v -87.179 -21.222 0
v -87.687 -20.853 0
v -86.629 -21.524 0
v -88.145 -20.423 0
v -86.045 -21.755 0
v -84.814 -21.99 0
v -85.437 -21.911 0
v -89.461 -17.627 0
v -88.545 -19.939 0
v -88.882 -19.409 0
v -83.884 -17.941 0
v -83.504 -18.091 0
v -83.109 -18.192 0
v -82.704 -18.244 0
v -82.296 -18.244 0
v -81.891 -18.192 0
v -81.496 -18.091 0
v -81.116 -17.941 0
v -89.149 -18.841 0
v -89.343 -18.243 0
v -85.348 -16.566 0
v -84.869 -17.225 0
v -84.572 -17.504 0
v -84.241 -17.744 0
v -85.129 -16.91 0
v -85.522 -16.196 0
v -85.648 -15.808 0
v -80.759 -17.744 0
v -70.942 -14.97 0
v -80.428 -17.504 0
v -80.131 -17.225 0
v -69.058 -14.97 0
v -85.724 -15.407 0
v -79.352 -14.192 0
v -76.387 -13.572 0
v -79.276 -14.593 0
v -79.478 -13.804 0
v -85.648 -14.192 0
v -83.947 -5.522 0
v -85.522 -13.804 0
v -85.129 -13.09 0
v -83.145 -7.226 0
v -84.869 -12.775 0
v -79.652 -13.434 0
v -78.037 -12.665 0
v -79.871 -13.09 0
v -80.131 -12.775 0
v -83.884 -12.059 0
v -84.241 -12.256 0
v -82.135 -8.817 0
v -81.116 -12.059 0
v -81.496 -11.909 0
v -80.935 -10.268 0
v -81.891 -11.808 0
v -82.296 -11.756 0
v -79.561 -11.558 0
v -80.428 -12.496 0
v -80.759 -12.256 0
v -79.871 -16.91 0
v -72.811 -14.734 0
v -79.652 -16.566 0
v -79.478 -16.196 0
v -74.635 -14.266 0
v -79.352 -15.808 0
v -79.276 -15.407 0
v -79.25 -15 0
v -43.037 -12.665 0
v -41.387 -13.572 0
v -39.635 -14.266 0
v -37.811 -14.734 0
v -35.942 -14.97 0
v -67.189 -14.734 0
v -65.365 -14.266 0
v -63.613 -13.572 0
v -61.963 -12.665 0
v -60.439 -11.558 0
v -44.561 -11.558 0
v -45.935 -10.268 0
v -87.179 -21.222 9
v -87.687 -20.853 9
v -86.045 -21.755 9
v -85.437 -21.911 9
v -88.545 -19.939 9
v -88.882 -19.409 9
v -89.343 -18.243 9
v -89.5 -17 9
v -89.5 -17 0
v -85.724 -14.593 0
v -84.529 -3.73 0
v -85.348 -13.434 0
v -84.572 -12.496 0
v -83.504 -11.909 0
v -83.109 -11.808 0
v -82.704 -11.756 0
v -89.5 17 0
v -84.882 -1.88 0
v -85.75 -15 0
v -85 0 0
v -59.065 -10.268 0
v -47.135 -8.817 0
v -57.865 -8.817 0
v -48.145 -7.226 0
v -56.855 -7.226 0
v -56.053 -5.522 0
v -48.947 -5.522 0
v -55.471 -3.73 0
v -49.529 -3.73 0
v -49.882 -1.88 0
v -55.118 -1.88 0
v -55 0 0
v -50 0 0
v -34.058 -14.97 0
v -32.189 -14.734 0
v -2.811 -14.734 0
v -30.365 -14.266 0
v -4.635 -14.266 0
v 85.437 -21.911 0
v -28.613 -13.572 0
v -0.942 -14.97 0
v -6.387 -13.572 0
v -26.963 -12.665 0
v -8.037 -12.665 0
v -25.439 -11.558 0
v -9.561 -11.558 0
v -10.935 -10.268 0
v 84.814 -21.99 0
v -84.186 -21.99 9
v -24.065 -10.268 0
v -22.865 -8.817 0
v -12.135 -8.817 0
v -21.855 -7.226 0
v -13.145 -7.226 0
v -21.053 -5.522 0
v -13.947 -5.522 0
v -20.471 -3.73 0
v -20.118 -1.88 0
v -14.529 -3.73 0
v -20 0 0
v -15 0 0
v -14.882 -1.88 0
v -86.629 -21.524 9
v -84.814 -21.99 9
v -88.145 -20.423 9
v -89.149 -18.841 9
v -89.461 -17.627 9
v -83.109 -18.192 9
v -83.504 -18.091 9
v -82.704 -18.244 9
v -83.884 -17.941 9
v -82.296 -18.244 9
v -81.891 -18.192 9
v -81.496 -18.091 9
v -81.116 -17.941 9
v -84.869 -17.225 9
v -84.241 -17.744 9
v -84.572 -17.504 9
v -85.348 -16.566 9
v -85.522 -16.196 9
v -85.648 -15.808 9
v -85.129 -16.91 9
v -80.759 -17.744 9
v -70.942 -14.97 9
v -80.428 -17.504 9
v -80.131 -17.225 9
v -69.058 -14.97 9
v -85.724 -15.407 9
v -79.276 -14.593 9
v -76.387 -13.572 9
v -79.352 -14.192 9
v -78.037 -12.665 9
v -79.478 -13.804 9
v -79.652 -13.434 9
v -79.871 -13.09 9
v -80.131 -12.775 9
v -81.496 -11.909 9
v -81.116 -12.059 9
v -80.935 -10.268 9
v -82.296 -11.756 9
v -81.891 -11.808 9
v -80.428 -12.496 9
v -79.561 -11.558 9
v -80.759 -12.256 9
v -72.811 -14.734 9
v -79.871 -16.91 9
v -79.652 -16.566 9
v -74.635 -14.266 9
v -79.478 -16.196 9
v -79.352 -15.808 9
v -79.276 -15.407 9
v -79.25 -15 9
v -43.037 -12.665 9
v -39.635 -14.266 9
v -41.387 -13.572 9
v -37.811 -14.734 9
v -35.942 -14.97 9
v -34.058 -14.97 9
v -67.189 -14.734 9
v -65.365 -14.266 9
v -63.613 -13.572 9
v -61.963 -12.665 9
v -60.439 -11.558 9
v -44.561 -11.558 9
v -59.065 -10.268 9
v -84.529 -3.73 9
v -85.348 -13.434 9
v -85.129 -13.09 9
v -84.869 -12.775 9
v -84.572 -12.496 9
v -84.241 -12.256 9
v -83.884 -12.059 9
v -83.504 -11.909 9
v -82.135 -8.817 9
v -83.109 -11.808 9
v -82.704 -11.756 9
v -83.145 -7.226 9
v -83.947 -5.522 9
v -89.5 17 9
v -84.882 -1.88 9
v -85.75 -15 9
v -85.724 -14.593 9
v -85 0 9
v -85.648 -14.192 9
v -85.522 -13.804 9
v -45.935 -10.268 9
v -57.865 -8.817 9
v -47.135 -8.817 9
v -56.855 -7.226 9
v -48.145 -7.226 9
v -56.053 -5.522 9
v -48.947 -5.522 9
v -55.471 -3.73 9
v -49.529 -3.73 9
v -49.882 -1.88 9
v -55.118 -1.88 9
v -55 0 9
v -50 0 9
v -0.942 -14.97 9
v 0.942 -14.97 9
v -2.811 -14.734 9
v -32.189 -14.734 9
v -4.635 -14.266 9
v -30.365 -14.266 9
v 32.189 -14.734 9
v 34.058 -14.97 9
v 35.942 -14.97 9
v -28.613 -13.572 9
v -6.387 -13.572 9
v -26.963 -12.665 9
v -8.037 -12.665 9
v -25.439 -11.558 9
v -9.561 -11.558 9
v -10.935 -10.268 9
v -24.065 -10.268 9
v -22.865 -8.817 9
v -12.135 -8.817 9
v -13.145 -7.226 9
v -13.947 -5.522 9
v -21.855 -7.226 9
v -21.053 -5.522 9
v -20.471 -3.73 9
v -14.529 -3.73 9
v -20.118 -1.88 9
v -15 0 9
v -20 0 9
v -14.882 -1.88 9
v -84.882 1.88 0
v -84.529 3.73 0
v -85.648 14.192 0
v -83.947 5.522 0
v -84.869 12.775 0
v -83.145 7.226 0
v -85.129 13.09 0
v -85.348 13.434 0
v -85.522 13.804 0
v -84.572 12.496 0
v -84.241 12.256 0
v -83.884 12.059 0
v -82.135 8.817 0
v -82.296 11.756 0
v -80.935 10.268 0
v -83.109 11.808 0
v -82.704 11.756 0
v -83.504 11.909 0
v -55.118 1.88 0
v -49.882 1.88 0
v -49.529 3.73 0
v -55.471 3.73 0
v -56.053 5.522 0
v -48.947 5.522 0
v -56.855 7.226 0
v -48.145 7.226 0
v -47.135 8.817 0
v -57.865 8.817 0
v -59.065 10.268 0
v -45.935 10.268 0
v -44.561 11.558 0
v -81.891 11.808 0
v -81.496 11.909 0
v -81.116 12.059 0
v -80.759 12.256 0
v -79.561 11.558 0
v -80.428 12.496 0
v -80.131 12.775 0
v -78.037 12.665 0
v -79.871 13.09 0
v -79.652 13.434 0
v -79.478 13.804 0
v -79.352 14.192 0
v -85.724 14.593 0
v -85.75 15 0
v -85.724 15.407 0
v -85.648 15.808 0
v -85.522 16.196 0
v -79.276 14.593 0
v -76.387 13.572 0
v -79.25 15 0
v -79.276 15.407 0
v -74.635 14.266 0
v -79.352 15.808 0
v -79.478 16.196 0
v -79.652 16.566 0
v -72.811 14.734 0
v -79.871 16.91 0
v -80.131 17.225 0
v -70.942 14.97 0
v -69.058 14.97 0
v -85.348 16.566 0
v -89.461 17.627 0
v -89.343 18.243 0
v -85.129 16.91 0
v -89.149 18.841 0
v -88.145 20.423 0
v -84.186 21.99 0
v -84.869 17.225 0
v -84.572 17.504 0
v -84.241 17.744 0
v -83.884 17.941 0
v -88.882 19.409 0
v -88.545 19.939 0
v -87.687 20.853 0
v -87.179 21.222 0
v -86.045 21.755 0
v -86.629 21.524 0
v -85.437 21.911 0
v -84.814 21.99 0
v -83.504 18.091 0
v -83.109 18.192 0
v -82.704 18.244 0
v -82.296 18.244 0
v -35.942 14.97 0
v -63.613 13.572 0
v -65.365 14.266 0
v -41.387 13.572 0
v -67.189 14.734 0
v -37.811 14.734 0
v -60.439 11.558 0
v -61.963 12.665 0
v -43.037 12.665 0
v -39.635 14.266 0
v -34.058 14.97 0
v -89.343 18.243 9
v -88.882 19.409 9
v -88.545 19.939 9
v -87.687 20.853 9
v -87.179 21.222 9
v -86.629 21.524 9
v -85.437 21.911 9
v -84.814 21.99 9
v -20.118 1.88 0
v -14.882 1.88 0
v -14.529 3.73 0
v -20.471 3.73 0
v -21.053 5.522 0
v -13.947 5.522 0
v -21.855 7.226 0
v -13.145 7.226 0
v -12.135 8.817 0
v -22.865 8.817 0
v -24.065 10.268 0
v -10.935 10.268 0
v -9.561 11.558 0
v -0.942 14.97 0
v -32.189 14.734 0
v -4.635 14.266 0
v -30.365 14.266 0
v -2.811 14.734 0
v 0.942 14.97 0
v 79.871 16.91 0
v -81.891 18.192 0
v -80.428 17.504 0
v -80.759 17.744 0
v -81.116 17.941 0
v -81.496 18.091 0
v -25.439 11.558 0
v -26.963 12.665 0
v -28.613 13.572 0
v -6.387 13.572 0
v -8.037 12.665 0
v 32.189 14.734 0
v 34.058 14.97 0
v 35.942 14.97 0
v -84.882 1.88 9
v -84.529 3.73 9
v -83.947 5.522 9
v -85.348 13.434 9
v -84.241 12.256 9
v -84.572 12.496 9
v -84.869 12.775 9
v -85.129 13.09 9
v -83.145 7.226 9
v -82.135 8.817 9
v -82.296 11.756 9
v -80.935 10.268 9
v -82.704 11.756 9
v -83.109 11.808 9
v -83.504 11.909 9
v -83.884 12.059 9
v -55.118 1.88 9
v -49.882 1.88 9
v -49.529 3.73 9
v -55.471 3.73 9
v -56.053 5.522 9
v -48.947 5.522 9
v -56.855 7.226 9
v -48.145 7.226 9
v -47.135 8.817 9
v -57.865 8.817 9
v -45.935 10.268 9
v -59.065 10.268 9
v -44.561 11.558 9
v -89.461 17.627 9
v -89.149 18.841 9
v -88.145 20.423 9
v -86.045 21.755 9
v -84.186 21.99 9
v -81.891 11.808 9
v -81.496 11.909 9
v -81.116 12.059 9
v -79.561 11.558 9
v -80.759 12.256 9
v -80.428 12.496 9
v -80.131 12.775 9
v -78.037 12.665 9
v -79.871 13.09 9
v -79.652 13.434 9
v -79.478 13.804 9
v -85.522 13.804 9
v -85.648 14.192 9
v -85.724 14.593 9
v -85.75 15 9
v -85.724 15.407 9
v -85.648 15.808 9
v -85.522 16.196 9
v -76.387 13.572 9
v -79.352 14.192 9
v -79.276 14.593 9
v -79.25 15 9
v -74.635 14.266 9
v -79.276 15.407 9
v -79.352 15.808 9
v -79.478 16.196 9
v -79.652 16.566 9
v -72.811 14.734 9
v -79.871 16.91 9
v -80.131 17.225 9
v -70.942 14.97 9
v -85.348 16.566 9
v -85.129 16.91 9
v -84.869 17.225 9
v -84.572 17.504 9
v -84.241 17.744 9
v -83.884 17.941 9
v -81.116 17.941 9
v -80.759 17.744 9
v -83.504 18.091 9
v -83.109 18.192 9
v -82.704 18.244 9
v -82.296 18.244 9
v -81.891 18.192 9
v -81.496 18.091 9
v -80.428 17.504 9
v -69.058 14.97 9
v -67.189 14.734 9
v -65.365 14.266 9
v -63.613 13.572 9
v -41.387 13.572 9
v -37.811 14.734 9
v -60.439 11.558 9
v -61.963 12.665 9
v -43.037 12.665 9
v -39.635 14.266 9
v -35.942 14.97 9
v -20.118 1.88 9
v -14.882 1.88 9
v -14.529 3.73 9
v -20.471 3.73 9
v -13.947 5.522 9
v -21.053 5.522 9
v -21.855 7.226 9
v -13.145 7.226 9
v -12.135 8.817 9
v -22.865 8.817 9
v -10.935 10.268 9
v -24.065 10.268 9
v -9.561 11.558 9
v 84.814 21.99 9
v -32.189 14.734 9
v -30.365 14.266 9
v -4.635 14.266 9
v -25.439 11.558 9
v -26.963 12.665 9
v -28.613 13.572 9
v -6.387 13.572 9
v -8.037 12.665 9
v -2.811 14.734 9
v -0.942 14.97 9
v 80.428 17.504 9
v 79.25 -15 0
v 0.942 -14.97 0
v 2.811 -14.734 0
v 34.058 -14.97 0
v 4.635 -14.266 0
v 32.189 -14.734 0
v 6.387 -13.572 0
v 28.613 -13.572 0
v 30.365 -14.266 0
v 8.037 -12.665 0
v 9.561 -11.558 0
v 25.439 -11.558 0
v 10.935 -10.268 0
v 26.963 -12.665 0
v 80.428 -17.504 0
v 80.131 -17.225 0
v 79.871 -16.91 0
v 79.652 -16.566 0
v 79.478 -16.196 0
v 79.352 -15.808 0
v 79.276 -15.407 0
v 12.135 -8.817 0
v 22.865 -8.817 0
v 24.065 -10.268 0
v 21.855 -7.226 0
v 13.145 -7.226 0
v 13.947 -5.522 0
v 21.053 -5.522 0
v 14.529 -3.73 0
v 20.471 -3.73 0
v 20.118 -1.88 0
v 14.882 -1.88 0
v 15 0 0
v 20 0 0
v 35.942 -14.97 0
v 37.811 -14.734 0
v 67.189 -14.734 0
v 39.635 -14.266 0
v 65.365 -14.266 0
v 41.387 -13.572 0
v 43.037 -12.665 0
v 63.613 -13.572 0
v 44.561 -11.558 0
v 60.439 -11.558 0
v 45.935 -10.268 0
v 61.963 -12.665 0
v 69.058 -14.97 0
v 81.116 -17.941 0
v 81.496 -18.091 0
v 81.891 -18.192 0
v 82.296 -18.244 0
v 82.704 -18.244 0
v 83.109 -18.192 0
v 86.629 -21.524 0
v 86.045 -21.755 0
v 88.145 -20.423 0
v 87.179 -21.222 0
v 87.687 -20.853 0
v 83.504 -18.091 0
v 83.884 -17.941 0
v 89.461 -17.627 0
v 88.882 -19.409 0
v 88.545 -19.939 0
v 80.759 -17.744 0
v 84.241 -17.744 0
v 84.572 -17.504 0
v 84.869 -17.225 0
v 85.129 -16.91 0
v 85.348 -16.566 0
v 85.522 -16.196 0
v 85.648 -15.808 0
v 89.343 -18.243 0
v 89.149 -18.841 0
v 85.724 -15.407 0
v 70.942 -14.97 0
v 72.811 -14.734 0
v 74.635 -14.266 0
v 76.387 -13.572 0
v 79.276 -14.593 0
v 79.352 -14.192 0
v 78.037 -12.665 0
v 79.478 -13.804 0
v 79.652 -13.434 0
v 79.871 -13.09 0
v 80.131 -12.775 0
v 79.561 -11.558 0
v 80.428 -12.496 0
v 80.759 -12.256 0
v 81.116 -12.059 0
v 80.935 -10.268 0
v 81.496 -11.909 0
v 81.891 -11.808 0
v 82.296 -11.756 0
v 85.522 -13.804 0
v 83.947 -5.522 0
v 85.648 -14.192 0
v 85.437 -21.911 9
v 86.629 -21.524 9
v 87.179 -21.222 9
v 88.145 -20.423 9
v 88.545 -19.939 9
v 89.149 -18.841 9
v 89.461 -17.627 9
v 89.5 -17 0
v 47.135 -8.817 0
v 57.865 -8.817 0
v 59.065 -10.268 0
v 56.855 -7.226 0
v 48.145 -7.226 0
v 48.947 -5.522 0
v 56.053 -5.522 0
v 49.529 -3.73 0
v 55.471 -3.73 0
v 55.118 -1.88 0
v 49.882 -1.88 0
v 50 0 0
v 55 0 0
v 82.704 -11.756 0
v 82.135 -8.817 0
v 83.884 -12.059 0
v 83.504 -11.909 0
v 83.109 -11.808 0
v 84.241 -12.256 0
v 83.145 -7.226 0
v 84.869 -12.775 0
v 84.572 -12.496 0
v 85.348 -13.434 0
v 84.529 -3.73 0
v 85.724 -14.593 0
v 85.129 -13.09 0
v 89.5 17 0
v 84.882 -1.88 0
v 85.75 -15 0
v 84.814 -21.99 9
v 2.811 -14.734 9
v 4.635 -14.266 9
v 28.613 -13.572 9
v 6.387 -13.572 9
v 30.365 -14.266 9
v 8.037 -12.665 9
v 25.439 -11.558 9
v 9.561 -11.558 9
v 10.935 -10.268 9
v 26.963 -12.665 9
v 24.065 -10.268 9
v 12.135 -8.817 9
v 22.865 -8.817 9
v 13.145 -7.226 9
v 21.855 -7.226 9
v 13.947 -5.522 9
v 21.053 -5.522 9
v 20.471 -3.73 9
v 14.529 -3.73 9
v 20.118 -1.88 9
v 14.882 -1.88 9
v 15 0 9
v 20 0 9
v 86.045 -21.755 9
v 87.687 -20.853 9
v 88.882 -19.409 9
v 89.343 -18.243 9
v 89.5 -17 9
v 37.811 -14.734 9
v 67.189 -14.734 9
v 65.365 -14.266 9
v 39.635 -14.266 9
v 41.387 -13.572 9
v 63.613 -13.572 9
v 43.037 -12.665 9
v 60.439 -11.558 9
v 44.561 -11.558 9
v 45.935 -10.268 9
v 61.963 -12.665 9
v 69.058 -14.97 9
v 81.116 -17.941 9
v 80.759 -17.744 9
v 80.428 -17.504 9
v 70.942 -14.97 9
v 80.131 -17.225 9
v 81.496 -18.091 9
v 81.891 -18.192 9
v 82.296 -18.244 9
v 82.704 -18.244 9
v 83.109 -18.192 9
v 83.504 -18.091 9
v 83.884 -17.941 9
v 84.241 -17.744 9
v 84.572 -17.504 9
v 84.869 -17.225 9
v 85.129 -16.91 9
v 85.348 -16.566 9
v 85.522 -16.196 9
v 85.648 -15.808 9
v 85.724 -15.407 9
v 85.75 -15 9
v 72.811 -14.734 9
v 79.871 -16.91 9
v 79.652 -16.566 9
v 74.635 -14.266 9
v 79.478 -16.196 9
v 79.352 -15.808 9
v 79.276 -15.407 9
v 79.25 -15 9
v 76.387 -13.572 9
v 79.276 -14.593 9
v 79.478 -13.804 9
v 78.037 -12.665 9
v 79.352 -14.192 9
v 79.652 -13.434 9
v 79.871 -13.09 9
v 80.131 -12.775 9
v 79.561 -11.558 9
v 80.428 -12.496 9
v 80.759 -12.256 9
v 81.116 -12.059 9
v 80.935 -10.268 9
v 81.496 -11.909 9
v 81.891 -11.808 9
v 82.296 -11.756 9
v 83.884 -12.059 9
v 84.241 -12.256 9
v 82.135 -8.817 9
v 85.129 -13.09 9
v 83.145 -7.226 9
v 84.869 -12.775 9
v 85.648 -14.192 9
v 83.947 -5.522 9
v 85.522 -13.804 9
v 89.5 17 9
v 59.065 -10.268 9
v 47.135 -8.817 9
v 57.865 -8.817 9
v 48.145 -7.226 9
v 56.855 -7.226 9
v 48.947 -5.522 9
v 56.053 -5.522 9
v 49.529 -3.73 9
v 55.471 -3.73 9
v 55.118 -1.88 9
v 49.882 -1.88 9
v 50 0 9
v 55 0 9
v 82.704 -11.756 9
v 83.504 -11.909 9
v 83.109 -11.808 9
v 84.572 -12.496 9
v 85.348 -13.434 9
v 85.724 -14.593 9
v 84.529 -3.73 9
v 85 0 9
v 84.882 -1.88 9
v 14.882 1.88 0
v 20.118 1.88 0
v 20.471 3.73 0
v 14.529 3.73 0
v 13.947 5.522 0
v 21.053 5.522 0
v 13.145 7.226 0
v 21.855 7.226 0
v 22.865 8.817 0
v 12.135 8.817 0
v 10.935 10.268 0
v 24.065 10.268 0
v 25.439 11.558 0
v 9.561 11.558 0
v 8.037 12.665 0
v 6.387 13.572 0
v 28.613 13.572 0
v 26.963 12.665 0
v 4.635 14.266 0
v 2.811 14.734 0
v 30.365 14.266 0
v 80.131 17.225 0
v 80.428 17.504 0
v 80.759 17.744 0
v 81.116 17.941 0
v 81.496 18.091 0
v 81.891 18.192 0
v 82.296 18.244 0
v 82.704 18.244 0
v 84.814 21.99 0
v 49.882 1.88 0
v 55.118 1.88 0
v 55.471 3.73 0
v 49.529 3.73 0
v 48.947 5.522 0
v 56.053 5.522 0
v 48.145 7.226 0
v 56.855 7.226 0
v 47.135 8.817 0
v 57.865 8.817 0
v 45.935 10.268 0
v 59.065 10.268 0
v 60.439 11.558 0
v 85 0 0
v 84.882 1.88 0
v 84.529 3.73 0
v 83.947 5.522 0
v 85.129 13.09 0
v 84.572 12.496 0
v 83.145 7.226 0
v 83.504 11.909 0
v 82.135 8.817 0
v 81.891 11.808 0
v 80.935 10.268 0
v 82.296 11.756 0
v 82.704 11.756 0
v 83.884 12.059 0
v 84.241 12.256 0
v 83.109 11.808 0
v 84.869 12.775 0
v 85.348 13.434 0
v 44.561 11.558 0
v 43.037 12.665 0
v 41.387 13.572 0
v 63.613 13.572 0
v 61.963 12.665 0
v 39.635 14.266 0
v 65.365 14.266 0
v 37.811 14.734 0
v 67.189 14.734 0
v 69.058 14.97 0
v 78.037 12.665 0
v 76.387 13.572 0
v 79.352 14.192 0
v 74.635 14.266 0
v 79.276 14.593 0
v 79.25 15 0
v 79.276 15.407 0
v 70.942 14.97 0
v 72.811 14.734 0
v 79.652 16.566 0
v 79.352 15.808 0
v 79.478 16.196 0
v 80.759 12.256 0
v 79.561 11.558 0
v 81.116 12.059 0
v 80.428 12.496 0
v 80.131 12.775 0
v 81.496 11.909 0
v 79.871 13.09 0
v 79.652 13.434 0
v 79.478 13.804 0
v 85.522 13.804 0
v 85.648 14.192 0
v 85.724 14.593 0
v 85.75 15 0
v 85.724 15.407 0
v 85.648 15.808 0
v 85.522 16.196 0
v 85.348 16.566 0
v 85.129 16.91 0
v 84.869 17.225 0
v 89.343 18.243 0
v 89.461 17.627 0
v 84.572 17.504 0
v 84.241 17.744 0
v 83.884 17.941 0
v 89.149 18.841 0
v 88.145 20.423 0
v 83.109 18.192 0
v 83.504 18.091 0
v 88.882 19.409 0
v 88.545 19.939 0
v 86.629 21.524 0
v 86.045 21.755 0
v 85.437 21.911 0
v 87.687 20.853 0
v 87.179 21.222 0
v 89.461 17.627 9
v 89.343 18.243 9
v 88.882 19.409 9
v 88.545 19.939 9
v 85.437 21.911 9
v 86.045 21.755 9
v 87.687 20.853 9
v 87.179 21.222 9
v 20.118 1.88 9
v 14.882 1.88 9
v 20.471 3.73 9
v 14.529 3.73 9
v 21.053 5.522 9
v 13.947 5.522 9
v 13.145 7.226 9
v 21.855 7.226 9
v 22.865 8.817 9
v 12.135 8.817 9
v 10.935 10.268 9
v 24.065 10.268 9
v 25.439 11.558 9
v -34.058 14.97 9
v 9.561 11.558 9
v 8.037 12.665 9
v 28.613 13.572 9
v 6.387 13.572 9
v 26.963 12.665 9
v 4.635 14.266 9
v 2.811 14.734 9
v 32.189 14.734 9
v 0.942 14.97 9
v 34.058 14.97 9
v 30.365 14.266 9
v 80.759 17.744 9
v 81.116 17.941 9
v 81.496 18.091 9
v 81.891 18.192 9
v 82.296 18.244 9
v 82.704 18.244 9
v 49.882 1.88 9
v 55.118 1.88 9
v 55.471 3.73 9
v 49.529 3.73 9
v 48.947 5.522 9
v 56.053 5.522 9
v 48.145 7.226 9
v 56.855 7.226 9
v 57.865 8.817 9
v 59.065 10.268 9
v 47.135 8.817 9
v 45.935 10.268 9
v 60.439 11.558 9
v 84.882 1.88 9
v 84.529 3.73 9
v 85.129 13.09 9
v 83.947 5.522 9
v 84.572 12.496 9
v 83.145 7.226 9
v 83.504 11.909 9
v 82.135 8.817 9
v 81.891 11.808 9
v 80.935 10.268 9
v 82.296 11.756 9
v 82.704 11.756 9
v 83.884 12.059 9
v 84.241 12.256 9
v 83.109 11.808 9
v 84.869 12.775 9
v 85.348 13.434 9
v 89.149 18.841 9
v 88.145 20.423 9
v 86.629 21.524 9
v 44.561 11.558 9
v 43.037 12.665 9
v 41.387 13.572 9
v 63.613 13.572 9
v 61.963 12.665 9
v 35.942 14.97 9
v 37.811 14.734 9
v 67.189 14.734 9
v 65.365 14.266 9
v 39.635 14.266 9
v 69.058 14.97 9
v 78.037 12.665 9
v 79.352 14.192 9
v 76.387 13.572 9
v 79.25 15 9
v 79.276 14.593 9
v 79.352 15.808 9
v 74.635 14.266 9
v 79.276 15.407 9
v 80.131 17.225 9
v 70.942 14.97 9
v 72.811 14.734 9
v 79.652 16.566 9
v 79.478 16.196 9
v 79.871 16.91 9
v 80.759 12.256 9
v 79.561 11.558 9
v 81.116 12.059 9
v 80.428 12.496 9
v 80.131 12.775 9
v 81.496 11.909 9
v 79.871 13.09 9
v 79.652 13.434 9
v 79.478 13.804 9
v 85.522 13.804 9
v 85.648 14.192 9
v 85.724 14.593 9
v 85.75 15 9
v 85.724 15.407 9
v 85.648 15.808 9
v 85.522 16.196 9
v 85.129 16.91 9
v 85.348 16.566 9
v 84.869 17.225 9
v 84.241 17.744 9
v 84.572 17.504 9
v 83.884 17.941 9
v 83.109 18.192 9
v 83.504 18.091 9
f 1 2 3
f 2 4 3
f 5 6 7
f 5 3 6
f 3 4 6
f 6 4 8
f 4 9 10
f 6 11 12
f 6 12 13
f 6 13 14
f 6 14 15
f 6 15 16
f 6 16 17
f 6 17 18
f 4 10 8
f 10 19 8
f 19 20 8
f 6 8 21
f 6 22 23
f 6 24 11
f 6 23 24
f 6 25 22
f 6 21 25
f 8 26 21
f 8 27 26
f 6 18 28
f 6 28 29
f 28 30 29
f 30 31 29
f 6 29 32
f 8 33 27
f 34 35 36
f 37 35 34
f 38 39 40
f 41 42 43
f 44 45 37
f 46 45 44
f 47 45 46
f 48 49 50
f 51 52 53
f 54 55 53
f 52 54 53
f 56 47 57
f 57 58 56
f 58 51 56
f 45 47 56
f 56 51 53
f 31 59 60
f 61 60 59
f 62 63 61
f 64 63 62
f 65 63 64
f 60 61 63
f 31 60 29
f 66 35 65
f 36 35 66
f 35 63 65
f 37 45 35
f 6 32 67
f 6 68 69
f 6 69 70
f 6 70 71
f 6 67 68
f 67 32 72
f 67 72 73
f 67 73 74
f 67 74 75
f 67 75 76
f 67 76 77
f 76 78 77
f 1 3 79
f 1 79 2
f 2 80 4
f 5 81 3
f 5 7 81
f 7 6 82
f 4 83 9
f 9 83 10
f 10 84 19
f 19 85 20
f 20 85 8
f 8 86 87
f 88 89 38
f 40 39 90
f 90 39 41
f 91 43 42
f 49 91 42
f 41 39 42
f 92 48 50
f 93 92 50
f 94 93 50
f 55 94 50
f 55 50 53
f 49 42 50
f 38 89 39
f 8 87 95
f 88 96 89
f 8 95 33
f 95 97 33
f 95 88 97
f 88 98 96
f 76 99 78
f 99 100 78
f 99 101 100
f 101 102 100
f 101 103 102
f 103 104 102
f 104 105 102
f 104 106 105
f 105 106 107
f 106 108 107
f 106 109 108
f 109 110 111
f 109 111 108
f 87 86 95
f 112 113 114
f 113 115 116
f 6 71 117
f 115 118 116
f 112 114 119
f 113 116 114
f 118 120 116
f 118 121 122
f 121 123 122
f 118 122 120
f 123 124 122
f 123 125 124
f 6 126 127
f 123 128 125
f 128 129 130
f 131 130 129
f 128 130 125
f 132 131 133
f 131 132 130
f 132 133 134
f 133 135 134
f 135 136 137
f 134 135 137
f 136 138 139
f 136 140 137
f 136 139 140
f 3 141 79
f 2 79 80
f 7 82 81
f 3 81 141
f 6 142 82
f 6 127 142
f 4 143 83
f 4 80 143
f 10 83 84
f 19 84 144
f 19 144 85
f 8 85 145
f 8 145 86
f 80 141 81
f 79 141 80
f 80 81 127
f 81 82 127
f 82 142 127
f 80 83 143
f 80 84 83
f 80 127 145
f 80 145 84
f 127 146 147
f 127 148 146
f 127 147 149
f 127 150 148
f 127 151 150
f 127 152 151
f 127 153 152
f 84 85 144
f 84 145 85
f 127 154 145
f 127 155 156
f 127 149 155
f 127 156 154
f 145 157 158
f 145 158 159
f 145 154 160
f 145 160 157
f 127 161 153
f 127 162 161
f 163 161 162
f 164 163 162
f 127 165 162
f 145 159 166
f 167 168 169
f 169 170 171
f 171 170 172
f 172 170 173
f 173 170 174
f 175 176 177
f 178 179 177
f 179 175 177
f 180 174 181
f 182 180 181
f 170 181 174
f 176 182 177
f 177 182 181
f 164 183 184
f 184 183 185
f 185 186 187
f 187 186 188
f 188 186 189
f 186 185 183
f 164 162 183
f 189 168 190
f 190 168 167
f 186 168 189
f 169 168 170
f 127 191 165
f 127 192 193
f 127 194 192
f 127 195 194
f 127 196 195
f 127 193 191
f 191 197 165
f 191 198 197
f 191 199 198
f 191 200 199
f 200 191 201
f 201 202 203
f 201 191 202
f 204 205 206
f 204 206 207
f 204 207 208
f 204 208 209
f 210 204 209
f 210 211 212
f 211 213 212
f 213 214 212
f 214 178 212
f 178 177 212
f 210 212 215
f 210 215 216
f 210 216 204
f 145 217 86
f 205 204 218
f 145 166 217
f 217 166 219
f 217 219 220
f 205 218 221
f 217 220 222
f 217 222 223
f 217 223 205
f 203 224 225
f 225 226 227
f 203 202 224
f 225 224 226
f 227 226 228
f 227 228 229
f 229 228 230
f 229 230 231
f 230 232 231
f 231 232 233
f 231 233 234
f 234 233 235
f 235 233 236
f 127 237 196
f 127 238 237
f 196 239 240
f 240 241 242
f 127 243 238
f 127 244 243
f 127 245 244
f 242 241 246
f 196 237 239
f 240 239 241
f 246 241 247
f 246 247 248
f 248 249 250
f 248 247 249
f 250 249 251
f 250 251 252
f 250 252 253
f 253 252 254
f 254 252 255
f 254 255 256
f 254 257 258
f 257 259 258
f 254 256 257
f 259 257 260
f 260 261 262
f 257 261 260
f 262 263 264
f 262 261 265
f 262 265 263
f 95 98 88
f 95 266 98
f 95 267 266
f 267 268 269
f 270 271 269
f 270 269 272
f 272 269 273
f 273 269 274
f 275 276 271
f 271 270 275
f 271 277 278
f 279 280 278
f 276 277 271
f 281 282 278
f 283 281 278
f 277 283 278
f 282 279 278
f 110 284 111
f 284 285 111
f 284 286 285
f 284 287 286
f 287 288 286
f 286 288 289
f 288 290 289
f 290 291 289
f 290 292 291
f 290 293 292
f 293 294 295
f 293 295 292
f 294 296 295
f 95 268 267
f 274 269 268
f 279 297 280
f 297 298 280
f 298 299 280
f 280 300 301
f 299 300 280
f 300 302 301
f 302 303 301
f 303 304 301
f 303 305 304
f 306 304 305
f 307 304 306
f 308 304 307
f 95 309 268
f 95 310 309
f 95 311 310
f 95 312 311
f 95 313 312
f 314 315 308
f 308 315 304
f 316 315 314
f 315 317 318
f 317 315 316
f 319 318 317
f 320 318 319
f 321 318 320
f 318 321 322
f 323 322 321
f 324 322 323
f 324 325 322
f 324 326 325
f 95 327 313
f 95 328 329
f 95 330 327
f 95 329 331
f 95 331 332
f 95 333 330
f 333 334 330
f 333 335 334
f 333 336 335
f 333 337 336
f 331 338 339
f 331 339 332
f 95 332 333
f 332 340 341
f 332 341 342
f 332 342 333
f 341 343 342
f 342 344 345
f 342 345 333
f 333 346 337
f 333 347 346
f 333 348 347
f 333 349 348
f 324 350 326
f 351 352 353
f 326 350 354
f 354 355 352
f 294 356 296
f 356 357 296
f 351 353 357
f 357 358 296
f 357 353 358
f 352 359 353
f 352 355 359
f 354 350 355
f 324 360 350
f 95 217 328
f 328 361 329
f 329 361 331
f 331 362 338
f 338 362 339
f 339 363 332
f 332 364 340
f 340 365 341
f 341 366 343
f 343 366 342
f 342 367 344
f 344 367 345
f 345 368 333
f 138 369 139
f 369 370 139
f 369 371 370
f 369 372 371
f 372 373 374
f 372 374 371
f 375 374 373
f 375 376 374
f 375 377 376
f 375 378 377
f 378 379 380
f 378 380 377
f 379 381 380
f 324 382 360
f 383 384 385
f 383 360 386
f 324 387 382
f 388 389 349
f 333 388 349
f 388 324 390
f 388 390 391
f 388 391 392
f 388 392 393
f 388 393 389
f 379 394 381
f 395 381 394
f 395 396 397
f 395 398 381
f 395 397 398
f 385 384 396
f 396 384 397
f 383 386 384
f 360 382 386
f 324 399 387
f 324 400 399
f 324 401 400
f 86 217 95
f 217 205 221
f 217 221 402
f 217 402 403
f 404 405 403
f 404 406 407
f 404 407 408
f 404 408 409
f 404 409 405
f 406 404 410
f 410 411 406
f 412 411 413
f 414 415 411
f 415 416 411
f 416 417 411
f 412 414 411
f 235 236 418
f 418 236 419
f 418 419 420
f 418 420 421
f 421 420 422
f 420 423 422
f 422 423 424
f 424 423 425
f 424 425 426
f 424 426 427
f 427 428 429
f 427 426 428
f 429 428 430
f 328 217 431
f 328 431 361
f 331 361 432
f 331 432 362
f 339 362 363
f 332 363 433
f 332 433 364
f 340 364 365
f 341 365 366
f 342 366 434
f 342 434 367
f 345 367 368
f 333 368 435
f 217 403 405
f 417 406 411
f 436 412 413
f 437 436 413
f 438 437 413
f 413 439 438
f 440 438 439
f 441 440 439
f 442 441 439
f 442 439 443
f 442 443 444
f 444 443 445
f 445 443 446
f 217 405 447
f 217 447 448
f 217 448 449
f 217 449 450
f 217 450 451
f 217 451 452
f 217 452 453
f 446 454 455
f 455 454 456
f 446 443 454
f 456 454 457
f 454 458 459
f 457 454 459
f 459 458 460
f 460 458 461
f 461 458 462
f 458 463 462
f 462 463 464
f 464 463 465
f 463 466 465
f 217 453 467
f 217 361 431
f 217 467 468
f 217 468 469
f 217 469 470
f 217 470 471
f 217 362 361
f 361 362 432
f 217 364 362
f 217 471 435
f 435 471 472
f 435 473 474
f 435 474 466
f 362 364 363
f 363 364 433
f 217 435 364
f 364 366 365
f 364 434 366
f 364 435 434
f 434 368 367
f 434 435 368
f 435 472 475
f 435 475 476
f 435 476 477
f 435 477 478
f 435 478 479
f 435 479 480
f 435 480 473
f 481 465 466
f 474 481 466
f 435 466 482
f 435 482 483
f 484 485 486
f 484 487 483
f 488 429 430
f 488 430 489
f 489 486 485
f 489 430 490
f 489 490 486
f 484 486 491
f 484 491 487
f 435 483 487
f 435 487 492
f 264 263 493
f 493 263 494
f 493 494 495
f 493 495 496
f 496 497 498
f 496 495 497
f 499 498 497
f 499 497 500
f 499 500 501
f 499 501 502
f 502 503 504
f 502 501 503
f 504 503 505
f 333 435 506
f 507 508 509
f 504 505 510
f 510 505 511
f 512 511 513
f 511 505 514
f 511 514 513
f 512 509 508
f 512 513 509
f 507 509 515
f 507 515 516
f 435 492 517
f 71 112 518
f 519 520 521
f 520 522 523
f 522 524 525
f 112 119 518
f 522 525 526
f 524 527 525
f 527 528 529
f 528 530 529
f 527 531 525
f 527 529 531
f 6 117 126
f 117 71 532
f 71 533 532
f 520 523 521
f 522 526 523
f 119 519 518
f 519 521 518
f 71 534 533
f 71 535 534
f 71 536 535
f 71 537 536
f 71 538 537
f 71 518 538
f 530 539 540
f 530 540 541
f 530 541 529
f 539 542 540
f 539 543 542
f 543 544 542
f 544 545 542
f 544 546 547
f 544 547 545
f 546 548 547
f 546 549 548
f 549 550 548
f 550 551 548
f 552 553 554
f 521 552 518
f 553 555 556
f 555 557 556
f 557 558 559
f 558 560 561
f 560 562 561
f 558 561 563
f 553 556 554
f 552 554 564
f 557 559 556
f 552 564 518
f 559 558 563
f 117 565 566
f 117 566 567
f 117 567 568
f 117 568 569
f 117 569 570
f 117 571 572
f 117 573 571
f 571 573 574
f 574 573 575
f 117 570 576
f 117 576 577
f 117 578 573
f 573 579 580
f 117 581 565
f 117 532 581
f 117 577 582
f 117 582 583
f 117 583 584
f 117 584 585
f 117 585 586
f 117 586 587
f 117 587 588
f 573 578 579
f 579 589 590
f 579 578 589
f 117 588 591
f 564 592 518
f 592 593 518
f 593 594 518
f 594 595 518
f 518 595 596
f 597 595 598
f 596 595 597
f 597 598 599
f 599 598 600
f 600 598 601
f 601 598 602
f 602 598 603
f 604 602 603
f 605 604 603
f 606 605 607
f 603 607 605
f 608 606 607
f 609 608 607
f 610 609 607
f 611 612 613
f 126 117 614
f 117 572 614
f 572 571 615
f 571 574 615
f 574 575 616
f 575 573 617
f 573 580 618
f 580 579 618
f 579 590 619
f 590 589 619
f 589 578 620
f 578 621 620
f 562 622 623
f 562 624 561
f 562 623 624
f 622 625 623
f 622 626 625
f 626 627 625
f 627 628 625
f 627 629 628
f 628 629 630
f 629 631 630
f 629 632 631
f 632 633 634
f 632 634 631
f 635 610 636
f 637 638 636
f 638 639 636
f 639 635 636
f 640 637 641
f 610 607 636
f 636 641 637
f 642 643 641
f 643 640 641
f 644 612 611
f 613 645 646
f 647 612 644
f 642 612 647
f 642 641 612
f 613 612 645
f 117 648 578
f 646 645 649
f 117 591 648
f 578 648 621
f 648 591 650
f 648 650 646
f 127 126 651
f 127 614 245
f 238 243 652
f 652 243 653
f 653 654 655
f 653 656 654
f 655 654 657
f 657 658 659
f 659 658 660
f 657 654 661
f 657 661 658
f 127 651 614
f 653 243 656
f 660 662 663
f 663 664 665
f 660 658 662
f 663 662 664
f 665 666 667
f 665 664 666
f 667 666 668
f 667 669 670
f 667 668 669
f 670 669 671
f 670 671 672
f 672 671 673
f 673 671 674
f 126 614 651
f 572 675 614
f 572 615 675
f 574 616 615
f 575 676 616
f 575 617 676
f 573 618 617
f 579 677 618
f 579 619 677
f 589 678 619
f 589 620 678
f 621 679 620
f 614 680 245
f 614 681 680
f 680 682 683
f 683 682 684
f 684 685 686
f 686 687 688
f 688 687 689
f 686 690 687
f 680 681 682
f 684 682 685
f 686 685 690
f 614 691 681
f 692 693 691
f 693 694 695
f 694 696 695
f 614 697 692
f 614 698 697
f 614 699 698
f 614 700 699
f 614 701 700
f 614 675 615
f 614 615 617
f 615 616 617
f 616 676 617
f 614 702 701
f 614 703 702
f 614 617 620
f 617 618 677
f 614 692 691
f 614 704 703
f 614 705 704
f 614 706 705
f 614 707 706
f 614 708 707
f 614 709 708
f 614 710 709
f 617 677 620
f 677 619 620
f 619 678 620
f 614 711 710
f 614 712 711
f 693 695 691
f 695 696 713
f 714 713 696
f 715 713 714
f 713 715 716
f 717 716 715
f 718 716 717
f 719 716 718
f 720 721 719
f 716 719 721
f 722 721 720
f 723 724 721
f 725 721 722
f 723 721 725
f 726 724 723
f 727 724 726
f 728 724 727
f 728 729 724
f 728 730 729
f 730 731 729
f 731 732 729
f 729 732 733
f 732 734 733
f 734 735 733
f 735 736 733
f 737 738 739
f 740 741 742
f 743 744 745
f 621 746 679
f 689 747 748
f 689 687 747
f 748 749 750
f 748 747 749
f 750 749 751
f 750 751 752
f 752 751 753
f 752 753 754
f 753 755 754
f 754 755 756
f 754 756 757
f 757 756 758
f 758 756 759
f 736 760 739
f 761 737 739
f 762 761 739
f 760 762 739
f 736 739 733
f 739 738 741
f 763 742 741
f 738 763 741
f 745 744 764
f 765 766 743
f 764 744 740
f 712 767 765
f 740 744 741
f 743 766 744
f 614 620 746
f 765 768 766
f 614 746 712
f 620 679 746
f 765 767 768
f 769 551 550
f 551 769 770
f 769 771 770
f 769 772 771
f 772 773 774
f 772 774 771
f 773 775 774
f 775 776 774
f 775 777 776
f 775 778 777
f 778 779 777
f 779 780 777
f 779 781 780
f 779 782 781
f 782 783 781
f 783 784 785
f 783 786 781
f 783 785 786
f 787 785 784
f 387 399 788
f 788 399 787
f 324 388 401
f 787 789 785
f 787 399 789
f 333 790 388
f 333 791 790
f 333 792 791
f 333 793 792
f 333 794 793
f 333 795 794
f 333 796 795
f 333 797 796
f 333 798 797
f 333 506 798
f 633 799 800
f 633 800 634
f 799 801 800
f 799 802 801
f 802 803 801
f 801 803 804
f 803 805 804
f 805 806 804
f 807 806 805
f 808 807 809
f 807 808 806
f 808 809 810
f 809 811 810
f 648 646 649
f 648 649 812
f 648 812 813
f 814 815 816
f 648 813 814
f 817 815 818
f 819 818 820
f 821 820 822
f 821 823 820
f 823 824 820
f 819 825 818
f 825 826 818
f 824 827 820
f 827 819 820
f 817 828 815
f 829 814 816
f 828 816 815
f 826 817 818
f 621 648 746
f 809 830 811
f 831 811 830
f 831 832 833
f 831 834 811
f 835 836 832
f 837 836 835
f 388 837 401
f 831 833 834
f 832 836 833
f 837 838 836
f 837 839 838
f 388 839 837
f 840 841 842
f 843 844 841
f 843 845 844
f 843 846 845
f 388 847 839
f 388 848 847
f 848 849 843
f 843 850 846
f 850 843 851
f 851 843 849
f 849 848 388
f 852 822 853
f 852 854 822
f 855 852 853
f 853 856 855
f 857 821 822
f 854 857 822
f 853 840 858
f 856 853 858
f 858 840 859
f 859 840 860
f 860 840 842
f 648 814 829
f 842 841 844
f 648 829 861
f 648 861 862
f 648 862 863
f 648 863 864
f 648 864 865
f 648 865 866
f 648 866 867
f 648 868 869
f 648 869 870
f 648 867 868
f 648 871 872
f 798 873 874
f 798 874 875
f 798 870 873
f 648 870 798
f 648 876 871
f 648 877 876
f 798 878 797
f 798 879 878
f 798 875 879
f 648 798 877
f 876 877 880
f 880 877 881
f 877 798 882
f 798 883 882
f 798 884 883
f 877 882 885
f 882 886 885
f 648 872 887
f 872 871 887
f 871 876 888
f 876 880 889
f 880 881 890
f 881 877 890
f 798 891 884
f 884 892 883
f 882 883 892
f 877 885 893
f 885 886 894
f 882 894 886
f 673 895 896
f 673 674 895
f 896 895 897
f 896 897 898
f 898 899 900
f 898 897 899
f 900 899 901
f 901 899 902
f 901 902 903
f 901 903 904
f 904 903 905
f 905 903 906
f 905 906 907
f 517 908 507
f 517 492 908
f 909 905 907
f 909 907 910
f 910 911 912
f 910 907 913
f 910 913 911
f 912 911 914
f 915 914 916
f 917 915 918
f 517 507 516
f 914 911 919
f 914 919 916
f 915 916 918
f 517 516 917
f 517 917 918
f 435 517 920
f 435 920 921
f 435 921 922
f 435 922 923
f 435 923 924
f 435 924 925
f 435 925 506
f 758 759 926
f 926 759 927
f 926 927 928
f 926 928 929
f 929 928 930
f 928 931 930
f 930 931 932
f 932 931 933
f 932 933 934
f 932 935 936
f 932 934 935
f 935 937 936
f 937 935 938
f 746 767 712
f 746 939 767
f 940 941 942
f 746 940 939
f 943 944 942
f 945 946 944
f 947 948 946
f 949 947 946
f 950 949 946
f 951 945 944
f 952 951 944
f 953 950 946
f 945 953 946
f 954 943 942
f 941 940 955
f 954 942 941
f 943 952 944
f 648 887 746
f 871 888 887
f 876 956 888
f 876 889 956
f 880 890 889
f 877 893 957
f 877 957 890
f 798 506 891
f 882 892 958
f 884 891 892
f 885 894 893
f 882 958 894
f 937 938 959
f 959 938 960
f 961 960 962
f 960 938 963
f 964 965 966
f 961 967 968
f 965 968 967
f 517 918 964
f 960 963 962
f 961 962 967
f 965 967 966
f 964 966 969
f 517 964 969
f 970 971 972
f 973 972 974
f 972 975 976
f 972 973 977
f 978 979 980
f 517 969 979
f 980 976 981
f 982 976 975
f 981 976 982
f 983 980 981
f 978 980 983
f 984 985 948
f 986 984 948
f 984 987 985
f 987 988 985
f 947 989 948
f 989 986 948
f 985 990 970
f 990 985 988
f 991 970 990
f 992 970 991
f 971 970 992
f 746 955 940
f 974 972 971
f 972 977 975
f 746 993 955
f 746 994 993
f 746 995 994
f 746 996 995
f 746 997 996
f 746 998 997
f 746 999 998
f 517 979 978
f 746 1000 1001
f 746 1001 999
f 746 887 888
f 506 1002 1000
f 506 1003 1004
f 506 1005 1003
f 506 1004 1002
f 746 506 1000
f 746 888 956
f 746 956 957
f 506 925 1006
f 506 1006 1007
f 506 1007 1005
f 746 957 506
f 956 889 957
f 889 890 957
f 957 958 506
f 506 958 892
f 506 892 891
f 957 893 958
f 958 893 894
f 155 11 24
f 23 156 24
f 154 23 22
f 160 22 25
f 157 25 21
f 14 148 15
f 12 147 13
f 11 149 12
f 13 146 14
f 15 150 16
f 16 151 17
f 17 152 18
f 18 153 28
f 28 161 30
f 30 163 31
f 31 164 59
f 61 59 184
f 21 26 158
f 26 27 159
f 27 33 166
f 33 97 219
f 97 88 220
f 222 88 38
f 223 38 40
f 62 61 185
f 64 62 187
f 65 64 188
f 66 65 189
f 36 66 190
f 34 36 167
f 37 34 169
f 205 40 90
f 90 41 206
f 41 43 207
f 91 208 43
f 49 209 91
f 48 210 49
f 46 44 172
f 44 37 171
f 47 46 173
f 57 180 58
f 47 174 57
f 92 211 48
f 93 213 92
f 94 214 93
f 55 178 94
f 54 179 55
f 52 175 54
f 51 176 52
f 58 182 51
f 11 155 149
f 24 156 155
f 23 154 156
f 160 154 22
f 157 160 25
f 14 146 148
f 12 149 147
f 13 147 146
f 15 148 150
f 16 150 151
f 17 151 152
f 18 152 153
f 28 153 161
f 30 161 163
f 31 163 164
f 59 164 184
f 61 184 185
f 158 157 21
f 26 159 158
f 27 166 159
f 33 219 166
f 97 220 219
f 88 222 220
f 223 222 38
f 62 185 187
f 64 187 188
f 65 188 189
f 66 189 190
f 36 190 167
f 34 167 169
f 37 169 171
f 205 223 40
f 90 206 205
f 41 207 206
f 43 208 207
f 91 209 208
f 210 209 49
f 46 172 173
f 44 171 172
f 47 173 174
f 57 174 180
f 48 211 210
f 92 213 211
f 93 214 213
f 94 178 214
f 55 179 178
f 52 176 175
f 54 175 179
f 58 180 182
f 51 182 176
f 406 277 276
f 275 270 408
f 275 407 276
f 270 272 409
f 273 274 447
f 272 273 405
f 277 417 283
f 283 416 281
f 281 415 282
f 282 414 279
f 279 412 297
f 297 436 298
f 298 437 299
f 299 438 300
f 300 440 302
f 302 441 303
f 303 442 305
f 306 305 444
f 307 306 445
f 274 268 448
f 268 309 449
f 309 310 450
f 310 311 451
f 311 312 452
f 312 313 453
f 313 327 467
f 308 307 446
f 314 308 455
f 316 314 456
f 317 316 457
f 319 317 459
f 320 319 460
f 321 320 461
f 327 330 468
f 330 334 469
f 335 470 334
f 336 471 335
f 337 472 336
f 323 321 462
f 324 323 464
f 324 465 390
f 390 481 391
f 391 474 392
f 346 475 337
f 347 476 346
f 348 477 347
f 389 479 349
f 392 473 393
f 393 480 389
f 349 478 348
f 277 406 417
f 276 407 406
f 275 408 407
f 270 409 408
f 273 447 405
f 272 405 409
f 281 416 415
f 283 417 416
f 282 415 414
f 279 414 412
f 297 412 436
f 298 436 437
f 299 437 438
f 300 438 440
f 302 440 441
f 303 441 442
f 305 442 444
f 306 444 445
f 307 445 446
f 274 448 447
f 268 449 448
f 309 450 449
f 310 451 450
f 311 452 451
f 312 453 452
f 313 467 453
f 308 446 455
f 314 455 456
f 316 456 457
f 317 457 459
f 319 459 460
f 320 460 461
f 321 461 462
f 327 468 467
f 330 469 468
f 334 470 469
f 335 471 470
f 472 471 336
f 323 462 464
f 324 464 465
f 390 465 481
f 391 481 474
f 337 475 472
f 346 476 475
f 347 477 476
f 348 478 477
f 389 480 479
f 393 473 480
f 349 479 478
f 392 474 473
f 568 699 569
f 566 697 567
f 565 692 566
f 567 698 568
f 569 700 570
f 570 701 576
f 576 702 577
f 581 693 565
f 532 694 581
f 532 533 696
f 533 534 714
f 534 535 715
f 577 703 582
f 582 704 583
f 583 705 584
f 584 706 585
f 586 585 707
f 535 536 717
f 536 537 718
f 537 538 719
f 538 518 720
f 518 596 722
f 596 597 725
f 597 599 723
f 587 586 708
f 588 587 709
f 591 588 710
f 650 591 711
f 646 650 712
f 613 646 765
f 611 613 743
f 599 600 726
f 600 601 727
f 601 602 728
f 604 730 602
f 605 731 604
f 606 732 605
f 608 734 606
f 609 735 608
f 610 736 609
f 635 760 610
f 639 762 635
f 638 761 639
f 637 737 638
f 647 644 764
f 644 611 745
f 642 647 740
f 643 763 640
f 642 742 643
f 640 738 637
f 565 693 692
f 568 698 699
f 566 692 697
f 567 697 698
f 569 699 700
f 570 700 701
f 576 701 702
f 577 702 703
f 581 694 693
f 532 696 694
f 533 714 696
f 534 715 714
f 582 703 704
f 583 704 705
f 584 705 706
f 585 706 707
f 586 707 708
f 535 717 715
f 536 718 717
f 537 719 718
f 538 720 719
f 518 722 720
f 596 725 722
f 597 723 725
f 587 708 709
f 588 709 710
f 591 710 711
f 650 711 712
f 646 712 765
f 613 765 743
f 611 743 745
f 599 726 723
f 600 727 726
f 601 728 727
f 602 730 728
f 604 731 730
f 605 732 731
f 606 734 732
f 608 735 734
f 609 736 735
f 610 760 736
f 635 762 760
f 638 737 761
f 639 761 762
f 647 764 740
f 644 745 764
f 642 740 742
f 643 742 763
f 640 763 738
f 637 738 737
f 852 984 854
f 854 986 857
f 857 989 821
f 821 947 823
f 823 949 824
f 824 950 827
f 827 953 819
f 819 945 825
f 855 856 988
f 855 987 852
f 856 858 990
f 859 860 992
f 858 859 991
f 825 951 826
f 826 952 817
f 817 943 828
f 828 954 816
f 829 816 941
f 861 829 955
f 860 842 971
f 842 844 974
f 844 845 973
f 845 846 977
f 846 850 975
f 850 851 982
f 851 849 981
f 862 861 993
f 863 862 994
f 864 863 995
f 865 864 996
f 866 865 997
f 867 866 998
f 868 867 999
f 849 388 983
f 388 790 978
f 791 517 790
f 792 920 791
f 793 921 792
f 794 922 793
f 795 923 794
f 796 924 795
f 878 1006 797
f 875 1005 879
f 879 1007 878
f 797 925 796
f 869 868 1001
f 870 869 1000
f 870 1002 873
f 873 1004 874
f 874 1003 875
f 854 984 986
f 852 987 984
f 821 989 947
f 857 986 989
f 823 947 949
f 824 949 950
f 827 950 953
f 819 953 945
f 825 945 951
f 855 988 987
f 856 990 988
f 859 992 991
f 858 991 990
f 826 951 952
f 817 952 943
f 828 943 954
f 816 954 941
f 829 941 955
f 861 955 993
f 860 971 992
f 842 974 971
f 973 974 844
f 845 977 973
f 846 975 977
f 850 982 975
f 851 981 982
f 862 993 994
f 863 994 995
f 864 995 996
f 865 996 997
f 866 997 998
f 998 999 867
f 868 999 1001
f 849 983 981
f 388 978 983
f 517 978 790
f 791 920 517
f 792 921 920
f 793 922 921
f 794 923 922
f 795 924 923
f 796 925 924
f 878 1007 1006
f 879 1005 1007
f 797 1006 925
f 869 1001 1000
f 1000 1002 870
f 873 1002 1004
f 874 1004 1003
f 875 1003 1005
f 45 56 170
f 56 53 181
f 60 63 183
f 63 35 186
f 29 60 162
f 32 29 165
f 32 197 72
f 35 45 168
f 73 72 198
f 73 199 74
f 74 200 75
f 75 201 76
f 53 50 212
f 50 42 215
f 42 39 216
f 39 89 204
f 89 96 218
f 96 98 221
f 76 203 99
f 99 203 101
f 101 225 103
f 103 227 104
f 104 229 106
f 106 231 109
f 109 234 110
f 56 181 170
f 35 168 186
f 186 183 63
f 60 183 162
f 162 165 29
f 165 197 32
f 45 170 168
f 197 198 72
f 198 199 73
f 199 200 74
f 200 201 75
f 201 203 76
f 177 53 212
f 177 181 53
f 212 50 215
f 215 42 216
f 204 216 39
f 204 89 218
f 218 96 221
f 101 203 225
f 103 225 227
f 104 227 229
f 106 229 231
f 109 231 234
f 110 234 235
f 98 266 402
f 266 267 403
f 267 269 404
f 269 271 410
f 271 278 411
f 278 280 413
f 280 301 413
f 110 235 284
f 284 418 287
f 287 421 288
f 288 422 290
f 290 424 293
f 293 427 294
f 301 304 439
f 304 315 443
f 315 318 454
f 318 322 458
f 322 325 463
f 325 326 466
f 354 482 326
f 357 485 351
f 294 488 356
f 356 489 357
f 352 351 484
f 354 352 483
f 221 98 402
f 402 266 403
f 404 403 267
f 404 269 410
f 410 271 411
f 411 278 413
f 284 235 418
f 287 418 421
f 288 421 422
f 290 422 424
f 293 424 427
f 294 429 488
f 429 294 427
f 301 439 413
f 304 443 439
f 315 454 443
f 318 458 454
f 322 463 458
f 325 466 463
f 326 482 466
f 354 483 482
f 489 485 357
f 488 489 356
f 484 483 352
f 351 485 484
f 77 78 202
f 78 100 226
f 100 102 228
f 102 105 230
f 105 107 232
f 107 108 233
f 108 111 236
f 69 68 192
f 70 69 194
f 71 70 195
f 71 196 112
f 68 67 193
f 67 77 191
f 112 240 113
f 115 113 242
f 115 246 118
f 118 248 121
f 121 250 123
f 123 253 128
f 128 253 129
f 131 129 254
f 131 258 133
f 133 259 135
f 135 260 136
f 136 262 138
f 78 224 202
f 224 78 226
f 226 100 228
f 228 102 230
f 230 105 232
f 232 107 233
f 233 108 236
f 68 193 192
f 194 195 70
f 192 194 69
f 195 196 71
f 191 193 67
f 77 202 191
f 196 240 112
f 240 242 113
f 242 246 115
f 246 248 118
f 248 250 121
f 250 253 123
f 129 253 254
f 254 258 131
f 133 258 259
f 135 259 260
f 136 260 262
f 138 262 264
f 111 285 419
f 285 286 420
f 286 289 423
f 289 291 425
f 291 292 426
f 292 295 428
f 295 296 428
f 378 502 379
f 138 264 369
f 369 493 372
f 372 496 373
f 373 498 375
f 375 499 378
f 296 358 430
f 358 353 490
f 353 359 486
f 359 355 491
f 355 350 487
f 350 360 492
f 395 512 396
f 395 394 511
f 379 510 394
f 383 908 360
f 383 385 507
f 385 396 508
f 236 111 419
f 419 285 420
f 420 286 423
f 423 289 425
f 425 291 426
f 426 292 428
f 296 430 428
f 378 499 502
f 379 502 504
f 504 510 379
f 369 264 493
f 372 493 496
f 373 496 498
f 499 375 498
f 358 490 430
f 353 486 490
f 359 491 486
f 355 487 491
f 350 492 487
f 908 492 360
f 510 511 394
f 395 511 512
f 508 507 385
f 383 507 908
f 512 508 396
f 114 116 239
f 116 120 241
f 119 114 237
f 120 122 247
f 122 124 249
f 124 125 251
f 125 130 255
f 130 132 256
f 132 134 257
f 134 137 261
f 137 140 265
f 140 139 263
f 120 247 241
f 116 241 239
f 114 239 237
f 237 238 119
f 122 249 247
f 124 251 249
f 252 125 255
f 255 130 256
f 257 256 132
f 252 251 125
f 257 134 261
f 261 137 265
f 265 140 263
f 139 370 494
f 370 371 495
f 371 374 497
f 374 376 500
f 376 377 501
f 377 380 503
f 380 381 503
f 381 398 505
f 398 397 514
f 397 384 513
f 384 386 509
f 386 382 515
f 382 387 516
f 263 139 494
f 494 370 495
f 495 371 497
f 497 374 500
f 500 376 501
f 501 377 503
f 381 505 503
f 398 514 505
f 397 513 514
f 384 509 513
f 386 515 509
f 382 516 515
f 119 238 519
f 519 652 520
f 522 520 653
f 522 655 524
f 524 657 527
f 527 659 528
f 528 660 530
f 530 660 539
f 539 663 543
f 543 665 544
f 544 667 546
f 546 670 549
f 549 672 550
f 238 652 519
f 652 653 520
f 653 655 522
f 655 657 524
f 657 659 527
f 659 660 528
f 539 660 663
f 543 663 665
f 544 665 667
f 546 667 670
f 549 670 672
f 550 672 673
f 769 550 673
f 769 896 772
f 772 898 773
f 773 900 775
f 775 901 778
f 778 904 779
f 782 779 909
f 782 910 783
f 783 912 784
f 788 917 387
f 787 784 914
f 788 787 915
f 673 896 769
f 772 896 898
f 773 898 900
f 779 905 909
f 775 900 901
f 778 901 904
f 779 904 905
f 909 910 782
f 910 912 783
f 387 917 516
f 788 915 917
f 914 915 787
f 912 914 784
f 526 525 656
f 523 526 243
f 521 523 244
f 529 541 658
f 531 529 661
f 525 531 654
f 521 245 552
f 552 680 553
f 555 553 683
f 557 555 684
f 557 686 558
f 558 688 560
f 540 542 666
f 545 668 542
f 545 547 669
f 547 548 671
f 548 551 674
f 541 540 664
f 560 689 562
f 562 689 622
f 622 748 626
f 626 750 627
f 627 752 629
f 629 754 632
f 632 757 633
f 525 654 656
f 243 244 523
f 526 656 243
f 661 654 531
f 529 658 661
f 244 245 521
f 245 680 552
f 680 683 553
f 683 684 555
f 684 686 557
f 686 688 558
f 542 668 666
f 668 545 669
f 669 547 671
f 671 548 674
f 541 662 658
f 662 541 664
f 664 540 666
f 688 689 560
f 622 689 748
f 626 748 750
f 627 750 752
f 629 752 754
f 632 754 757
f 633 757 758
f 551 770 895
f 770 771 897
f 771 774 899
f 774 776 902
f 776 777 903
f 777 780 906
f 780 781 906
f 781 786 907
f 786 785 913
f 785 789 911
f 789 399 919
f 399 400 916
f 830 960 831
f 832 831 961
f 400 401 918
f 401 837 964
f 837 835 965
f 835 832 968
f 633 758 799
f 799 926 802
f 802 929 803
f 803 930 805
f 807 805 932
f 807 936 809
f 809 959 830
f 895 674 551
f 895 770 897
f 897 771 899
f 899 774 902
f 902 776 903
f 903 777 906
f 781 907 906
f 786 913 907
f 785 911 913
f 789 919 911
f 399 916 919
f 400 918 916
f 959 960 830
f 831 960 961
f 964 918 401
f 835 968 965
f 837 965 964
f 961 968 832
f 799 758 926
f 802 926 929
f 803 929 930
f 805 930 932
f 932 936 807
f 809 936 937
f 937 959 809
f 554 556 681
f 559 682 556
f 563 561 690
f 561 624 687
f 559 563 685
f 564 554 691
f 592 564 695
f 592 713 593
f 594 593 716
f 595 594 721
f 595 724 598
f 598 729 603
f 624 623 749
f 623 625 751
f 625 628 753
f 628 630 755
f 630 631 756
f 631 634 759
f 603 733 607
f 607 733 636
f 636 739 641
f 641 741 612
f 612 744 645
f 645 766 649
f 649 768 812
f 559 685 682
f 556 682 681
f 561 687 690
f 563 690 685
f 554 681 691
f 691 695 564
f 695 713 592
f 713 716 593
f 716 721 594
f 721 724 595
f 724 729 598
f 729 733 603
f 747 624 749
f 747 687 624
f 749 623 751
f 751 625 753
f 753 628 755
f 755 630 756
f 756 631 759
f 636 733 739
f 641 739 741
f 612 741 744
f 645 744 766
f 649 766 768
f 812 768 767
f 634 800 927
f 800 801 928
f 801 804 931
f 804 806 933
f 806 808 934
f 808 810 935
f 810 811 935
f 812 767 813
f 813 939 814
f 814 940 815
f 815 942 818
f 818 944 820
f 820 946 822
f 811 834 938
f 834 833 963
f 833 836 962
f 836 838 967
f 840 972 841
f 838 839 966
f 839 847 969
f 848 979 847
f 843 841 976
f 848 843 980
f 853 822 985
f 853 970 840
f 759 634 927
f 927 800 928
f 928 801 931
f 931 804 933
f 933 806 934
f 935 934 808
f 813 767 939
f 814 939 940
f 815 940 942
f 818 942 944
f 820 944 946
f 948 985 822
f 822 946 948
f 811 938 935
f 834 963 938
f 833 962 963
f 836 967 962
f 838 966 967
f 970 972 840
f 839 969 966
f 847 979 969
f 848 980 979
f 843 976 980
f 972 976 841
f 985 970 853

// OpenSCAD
$fn = 50;

difference() {
	union() {
		hull() {
			translate(v = [-84.5, 17.0, 0]) {
				cylinder(h = 9, r = 5);
			}
			translate(v = [84.5, 17.0, 0]) {
				cylinder(h = 9, r = 5);
			}
			translate(v = [-84.5, -17.0, 0]) {
				cylinder(h = 9, r = 5);
			}
			translate(v = [84.5, -17.0, 0]) {
				cylinder(h = 9, r = 5);
			}
		}
	}
	union() {
		translate(v = [-82.5, -15.0, -100.0]) {
			cylinder(h = 200, r = 3.25);
		}
		translate(v = [-82.5, 15.0, -100.0]) {
			cylinder(h = 200, r = 3.25);
		}
		translate(v = [82.5, -15.0, -100.0]) {
			cylinder(h = 200, r = 3.25);
		}
		translate(v = [82.5, 15.0, -100.0]) {
			cylinder(h = 200, r = 3.25);
		}
		translate(v = [-82.5, -15.0, -100.0]) {
			cylinder(h = 200, r = 1.8);
		}
		translate(v = [-82.5, 15.0, -100.0]) {
			cylinder(h = 200, r = 1.8);
		}
		translate(v = [82.5, -15.0, -100.0]) {
			cylinder(h = 200, r = 1.8);
		}
		translate(v = [82.5, 15.0, -100.0]) {
			cylinder(h = 200, r = 1.8);
		}
		translate(v = [-70.0, 0, 0.0]) {
			cylinder(h = 9, r = 15.0);
		}
		translate(v = [-35.0, 0, 0.0]) {
			cylinder(h = 9, r = 15.0);
		}
		cylinder(h = 9, r = 15.0);
		translate(v = [35.0, 0, 0.0]) {
			cylinder(h = 9, r = 15.0);
		}
		translate(v = [70.0, 0, 0.0]) {
			cylinder(h = 9, r = 15.0);
		}
	}
}
